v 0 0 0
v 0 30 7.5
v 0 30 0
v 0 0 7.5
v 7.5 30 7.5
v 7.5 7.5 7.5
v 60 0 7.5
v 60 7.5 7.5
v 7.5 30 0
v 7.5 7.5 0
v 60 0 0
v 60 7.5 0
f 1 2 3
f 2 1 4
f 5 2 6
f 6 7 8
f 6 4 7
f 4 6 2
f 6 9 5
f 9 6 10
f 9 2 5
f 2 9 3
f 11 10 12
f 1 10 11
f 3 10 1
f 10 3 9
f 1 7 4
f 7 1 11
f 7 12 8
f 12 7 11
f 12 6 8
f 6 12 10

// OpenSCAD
t = 7.5;
y = 30;
x = 60;

cube([t, y, t]);
cube([x, t, t]);
